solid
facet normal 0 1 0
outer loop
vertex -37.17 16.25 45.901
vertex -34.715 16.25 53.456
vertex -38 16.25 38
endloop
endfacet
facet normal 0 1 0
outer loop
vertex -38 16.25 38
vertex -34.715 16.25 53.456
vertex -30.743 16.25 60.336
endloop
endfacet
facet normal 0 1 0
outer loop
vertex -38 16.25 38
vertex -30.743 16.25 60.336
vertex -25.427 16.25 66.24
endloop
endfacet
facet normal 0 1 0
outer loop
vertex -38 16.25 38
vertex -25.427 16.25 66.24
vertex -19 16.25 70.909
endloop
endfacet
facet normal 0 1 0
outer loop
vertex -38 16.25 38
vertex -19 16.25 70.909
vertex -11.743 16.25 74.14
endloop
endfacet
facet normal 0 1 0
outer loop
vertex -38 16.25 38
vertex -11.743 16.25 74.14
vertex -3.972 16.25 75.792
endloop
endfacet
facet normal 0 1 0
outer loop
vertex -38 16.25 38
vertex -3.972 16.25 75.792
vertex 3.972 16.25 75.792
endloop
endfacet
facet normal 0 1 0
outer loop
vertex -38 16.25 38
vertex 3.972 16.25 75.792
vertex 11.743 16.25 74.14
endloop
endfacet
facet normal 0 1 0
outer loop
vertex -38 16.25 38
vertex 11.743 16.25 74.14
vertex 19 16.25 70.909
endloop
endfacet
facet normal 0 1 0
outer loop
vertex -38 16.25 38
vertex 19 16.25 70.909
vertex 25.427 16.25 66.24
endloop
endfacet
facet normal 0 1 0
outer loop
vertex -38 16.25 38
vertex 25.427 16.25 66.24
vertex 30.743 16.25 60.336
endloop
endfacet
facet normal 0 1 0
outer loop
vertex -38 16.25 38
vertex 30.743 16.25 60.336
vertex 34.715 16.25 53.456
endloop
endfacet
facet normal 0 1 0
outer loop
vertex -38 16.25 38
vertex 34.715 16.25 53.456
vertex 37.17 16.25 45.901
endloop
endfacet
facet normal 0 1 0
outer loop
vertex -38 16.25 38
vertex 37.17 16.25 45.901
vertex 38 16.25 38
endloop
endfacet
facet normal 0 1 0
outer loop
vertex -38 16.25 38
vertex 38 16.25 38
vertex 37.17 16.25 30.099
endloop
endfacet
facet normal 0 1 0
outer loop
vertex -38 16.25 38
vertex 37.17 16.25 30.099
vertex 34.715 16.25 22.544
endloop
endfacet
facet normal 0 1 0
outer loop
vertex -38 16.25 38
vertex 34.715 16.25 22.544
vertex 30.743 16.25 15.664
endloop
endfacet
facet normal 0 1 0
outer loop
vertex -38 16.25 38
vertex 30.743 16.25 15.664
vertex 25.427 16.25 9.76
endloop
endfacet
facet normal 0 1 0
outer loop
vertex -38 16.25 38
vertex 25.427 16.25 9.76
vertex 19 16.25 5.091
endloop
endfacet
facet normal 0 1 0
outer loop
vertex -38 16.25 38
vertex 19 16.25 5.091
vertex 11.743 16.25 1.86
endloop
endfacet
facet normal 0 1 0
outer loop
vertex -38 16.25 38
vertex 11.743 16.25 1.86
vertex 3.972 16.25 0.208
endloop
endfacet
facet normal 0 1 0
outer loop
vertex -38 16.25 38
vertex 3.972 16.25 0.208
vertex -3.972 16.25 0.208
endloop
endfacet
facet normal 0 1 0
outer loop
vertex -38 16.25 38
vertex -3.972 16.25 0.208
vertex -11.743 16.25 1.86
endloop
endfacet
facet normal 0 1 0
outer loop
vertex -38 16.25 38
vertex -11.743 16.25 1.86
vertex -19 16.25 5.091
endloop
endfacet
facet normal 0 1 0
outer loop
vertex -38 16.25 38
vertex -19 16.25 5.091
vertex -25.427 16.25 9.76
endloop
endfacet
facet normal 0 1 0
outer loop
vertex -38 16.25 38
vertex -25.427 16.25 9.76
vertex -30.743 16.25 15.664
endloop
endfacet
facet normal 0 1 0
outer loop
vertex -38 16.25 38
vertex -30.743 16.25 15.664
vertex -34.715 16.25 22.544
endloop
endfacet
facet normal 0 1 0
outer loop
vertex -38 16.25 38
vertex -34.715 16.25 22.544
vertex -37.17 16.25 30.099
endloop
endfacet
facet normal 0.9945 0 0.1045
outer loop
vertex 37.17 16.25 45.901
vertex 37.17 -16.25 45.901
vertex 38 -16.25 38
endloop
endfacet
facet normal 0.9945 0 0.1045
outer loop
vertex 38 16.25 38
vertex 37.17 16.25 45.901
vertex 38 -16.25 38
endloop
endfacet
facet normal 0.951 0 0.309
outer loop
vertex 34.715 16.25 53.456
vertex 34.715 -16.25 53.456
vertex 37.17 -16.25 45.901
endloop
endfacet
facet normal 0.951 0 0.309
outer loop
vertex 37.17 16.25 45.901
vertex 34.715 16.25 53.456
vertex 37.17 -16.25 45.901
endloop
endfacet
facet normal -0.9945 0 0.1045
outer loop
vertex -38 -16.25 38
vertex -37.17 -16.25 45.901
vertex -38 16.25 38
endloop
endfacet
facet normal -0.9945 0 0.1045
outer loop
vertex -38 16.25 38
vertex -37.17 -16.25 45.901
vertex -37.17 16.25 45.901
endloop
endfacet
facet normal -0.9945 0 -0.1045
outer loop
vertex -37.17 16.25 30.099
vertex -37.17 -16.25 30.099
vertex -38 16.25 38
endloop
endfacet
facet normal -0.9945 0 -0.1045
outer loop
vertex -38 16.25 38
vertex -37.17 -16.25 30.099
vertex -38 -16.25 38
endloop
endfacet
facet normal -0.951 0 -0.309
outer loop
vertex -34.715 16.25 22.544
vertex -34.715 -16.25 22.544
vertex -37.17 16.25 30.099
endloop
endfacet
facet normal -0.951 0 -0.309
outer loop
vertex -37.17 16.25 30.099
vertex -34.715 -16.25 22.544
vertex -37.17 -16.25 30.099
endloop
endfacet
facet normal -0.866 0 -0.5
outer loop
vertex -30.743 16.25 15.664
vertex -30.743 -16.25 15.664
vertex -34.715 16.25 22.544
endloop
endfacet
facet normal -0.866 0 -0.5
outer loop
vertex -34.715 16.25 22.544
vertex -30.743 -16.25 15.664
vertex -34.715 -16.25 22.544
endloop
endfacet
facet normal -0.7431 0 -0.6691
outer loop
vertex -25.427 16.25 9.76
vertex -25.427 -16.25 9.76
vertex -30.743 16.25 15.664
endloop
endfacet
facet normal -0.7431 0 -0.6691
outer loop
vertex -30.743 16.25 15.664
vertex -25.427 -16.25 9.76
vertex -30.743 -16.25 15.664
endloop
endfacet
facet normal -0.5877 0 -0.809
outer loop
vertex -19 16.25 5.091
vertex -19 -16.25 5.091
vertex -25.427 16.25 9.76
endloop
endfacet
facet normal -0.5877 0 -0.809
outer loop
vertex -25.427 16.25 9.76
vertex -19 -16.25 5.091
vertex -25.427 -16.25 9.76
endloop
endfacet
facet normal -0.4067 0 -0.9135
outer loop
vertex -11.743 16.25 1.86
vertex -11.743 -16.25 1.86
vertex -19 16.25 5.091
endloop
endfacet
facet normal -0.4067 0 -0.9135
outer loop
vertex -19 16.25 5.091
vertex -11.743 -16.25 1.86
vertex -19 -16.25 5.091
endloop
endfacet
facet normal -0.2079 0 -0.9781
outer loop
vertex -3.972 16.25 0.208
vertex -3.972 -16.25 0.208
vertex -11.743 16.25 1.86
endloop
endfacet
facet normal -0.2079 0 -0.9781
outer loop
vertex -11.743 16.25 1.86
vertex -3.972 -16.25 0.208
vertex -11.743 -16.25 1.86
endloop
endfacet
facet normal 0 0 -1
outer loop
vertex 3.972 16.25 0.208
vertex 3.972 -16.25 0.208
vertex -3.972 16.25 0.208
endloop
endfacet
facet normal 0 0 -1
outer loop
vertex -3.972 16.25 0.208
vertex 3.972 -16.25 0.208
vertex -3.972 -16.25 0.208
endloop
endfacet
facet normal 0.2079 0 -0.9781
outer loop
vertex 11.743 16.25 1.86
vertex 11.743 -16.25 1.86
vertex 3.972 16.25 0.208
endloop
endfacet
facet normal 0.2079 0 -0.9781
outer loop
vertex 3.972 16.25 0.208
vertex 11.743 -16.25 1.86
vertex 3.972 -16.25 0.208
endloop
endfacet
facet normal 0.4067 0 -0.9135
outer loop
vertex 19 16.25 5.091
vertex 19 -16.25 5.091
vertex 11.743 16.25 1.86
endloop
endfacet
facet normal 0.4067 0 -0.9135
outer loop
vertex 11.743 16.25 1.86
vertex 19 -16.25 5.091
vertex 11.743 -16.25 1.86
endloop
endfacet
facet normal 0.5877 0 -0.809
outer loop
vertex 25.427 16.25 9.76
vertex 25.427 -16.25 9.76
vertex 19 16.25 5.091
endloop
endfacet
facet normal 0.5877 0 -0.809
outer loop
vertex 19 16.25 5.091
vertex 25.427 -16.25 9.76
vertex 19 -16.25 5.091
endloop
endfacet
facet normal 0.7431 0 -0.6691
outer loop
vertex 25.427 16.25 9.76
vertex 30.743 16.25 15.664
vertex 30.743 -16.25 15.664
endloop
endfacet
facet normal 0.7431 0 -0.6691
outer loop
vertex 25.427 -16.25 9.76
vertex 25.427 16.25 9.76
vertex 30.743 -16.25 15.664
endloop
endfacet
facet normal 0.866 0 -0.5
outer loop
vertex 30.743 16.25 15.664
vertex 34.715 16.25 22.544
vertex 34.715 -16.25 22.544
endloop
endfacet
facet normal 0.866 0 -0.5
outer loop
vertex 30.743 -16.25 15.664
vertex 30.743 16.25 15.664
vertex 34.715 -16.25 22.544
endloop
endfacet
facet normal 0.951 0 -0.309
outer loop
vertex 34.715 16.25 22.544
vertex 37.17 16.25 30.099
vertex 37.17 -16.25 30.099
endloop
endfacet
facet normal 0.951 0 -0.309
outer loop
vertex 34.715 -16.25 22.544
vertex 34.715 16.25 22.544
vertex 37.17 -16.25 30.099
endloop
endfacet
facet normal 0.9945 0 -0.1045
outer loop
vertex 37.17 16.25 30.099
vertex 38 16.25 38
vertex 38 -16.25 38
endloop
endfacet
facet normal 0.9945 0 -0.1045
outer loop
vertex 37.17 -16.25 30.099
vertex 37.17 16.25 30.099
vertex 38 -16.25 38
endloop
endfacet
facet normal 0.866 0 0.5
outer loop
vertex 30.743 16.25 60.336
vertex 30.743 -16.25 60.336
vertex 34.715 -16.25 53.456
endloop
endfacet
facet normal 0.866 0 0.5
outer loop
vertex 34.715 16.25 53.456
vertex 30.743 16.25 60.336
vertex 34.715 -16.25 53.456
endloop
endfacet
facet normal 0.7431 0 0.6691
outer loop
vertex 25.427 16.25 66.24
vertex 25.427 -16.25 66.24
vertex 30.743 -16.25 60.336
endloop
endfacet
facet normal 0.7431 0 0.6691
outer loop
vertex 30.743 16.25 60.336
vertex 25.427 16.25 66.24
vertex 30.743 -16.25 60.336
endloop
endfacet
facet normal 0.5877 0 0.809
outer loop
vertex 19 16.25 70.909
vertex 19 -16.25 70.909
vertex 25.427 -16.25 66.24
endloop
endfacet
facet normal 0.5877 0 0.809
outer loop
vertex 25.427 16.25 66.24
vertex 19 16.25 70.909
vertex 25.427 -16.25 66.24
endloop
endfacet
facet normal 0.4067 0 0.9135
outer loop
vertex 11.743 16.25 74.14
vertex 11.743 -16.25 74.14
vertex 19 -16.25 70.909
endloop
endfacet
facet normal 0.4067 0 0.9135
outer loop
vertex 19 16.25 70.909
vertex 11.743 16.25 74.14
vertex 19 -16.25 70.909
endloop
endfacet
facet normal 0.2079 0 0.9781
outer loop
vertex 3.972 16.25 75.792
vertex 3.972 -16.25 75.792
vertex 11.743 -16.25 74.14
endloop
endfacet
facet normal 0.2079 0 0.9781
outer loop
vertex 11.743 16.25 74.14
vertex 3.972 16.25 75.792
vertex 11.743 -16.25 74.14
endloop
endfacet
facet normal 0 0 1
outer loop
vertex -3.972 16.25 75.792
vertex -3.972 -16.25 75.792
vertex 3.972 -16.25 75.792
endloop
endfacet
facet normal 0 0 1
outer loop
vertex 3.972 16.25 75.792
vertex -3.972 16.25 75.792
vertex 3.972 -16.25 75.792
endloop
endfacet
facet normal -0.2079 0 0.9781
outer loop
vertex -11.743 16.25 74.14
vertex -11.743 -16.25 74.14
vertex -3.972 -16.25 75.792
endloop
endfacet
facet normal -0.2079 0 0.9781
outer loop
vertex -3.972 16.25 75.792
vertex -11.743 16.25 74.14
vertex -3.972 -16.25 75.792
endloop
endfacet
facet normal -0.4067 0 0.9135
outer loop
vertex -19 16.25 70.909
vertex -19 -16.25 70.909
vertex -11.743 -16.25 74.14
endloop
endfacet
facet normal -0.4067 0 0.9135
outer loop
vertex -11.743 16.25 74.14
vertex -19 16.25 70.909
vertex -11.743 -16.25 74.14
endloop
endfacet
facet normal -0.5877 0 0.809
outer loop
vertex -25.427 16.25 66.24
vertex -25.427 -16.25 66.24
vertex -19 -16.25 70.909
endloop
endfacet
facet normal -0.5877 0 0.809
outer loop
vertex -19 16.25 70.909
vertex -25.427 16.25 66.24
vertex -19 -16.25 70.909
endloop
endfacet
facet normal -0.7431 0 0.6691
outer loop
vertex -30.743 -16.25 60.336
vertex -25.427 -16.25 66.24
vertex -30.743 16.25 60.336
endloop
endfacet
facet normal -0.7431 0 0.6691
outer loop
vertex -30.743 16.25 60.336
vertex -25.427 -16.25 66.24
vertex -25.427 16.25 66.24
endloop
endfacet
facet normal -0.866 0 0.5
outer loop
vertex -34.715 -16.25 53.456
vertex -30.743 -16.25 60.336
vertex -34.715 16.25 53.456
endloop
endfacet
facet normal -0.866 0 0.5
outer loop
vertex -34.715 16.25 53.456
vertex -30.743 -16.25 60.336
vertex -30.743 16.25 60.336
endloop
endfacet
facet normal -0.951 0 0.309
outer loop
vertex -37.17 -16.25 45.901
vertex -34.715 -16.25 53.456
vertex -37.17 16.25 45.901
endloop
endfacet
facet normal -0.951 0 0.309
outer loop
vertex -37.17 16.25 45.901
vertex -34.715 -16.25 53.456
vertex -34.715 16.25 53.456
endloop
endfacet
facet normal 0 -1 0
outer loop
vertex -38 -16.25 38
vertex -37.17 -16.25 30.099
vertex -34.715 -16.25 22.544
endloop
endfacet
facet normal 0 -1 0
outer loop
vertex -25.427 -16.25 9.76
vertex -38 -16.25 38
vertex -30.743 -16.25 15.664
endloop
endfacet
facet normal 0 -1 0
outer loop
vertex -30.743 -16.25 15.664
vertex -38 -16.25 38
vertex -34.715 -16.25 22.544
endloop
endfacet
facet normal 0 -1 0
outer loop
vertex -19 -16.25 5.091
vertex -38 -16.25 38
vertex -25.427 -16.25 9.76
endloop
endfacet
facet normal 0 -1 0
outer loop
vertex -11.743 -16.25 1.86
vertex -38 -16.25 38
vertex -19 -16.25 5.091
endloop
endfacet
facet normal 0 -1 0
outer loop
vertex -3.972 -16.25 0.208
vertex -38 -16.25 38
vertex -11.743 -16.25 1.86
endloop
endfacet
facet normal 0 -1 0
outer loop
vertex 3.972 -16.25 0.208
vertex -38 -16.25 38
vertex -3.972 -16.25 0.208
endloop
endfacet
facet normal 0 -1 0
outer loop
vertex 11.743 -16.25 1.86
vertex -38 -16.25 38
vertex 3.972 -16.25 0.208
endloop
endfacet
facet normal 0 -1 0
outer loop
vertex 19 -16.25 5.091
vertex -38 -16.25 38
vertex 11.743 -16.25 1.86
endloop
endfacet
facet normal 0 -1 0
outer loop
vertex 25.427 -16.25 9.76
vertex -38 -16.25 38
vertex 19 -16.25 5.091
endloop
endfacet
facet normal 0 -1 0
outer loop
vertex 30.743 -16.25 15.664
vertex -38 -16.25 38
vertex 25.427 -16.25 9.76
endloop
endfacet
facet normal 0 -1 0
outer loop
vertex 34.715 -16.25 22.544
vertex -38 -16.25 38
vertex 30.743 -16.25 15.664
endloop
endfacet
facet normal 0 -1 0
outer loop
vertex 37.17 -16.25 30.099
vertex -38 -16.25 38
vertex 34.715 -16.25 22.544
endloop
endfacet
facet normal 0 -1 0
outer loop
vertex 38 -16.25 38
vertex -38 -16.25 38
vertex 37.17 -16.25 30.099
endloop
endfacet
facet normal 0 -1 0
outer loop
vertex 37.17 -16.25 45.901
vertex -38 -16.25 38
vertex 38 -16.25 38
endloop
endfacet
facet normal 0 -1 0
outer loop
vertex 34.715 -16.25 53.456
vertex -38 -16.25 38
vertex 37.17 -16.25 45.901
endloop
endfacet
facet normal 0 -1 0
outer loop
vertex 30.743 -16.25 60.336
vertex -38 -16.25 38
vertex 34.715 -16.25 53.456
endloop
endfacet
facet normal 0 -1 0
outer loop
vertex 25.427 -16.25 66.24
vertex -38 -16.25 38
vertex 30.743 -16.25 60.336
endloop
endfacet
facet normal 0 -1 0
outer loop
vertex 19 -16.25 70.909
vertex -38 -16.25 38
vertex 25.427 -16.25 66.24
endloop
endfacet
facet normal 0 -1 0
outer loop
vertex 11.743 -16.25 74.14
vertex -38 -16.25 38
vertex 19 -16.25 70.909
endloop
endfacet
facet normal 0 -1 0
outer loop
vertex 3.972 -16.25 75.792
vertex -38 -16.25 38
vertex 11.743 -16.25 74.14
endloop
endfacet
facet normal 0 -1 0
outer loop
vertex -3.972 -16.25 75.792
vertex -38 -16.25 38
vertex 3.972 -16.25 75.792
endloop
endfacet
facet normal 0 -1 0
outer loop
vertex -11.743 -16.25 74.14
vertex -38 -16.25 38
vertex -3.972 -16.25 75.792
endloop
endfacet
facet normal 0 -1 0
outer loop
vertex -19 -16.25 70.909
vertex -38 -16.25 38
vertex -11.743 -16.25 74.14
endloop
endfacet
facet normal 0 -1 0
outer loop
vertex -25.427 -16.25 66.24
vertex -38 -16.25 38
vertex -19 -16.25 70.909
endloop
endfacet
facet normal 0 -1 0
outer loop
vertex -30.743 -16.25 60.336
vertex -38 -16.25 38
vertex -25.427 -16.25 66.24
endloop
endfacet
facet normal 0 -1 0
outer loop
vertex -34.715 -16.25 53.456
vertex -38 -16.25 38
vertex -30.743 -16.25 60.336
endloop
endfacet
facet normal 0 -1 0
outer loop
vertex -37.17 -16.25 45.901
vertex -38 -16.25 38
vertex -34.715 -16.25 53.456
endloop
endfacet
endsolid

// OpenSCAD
translate([0, 0, 76/2]) {
rotate([90,0,0]) 
cylinder(r=76/2, h = 32.5, center = true);
}
